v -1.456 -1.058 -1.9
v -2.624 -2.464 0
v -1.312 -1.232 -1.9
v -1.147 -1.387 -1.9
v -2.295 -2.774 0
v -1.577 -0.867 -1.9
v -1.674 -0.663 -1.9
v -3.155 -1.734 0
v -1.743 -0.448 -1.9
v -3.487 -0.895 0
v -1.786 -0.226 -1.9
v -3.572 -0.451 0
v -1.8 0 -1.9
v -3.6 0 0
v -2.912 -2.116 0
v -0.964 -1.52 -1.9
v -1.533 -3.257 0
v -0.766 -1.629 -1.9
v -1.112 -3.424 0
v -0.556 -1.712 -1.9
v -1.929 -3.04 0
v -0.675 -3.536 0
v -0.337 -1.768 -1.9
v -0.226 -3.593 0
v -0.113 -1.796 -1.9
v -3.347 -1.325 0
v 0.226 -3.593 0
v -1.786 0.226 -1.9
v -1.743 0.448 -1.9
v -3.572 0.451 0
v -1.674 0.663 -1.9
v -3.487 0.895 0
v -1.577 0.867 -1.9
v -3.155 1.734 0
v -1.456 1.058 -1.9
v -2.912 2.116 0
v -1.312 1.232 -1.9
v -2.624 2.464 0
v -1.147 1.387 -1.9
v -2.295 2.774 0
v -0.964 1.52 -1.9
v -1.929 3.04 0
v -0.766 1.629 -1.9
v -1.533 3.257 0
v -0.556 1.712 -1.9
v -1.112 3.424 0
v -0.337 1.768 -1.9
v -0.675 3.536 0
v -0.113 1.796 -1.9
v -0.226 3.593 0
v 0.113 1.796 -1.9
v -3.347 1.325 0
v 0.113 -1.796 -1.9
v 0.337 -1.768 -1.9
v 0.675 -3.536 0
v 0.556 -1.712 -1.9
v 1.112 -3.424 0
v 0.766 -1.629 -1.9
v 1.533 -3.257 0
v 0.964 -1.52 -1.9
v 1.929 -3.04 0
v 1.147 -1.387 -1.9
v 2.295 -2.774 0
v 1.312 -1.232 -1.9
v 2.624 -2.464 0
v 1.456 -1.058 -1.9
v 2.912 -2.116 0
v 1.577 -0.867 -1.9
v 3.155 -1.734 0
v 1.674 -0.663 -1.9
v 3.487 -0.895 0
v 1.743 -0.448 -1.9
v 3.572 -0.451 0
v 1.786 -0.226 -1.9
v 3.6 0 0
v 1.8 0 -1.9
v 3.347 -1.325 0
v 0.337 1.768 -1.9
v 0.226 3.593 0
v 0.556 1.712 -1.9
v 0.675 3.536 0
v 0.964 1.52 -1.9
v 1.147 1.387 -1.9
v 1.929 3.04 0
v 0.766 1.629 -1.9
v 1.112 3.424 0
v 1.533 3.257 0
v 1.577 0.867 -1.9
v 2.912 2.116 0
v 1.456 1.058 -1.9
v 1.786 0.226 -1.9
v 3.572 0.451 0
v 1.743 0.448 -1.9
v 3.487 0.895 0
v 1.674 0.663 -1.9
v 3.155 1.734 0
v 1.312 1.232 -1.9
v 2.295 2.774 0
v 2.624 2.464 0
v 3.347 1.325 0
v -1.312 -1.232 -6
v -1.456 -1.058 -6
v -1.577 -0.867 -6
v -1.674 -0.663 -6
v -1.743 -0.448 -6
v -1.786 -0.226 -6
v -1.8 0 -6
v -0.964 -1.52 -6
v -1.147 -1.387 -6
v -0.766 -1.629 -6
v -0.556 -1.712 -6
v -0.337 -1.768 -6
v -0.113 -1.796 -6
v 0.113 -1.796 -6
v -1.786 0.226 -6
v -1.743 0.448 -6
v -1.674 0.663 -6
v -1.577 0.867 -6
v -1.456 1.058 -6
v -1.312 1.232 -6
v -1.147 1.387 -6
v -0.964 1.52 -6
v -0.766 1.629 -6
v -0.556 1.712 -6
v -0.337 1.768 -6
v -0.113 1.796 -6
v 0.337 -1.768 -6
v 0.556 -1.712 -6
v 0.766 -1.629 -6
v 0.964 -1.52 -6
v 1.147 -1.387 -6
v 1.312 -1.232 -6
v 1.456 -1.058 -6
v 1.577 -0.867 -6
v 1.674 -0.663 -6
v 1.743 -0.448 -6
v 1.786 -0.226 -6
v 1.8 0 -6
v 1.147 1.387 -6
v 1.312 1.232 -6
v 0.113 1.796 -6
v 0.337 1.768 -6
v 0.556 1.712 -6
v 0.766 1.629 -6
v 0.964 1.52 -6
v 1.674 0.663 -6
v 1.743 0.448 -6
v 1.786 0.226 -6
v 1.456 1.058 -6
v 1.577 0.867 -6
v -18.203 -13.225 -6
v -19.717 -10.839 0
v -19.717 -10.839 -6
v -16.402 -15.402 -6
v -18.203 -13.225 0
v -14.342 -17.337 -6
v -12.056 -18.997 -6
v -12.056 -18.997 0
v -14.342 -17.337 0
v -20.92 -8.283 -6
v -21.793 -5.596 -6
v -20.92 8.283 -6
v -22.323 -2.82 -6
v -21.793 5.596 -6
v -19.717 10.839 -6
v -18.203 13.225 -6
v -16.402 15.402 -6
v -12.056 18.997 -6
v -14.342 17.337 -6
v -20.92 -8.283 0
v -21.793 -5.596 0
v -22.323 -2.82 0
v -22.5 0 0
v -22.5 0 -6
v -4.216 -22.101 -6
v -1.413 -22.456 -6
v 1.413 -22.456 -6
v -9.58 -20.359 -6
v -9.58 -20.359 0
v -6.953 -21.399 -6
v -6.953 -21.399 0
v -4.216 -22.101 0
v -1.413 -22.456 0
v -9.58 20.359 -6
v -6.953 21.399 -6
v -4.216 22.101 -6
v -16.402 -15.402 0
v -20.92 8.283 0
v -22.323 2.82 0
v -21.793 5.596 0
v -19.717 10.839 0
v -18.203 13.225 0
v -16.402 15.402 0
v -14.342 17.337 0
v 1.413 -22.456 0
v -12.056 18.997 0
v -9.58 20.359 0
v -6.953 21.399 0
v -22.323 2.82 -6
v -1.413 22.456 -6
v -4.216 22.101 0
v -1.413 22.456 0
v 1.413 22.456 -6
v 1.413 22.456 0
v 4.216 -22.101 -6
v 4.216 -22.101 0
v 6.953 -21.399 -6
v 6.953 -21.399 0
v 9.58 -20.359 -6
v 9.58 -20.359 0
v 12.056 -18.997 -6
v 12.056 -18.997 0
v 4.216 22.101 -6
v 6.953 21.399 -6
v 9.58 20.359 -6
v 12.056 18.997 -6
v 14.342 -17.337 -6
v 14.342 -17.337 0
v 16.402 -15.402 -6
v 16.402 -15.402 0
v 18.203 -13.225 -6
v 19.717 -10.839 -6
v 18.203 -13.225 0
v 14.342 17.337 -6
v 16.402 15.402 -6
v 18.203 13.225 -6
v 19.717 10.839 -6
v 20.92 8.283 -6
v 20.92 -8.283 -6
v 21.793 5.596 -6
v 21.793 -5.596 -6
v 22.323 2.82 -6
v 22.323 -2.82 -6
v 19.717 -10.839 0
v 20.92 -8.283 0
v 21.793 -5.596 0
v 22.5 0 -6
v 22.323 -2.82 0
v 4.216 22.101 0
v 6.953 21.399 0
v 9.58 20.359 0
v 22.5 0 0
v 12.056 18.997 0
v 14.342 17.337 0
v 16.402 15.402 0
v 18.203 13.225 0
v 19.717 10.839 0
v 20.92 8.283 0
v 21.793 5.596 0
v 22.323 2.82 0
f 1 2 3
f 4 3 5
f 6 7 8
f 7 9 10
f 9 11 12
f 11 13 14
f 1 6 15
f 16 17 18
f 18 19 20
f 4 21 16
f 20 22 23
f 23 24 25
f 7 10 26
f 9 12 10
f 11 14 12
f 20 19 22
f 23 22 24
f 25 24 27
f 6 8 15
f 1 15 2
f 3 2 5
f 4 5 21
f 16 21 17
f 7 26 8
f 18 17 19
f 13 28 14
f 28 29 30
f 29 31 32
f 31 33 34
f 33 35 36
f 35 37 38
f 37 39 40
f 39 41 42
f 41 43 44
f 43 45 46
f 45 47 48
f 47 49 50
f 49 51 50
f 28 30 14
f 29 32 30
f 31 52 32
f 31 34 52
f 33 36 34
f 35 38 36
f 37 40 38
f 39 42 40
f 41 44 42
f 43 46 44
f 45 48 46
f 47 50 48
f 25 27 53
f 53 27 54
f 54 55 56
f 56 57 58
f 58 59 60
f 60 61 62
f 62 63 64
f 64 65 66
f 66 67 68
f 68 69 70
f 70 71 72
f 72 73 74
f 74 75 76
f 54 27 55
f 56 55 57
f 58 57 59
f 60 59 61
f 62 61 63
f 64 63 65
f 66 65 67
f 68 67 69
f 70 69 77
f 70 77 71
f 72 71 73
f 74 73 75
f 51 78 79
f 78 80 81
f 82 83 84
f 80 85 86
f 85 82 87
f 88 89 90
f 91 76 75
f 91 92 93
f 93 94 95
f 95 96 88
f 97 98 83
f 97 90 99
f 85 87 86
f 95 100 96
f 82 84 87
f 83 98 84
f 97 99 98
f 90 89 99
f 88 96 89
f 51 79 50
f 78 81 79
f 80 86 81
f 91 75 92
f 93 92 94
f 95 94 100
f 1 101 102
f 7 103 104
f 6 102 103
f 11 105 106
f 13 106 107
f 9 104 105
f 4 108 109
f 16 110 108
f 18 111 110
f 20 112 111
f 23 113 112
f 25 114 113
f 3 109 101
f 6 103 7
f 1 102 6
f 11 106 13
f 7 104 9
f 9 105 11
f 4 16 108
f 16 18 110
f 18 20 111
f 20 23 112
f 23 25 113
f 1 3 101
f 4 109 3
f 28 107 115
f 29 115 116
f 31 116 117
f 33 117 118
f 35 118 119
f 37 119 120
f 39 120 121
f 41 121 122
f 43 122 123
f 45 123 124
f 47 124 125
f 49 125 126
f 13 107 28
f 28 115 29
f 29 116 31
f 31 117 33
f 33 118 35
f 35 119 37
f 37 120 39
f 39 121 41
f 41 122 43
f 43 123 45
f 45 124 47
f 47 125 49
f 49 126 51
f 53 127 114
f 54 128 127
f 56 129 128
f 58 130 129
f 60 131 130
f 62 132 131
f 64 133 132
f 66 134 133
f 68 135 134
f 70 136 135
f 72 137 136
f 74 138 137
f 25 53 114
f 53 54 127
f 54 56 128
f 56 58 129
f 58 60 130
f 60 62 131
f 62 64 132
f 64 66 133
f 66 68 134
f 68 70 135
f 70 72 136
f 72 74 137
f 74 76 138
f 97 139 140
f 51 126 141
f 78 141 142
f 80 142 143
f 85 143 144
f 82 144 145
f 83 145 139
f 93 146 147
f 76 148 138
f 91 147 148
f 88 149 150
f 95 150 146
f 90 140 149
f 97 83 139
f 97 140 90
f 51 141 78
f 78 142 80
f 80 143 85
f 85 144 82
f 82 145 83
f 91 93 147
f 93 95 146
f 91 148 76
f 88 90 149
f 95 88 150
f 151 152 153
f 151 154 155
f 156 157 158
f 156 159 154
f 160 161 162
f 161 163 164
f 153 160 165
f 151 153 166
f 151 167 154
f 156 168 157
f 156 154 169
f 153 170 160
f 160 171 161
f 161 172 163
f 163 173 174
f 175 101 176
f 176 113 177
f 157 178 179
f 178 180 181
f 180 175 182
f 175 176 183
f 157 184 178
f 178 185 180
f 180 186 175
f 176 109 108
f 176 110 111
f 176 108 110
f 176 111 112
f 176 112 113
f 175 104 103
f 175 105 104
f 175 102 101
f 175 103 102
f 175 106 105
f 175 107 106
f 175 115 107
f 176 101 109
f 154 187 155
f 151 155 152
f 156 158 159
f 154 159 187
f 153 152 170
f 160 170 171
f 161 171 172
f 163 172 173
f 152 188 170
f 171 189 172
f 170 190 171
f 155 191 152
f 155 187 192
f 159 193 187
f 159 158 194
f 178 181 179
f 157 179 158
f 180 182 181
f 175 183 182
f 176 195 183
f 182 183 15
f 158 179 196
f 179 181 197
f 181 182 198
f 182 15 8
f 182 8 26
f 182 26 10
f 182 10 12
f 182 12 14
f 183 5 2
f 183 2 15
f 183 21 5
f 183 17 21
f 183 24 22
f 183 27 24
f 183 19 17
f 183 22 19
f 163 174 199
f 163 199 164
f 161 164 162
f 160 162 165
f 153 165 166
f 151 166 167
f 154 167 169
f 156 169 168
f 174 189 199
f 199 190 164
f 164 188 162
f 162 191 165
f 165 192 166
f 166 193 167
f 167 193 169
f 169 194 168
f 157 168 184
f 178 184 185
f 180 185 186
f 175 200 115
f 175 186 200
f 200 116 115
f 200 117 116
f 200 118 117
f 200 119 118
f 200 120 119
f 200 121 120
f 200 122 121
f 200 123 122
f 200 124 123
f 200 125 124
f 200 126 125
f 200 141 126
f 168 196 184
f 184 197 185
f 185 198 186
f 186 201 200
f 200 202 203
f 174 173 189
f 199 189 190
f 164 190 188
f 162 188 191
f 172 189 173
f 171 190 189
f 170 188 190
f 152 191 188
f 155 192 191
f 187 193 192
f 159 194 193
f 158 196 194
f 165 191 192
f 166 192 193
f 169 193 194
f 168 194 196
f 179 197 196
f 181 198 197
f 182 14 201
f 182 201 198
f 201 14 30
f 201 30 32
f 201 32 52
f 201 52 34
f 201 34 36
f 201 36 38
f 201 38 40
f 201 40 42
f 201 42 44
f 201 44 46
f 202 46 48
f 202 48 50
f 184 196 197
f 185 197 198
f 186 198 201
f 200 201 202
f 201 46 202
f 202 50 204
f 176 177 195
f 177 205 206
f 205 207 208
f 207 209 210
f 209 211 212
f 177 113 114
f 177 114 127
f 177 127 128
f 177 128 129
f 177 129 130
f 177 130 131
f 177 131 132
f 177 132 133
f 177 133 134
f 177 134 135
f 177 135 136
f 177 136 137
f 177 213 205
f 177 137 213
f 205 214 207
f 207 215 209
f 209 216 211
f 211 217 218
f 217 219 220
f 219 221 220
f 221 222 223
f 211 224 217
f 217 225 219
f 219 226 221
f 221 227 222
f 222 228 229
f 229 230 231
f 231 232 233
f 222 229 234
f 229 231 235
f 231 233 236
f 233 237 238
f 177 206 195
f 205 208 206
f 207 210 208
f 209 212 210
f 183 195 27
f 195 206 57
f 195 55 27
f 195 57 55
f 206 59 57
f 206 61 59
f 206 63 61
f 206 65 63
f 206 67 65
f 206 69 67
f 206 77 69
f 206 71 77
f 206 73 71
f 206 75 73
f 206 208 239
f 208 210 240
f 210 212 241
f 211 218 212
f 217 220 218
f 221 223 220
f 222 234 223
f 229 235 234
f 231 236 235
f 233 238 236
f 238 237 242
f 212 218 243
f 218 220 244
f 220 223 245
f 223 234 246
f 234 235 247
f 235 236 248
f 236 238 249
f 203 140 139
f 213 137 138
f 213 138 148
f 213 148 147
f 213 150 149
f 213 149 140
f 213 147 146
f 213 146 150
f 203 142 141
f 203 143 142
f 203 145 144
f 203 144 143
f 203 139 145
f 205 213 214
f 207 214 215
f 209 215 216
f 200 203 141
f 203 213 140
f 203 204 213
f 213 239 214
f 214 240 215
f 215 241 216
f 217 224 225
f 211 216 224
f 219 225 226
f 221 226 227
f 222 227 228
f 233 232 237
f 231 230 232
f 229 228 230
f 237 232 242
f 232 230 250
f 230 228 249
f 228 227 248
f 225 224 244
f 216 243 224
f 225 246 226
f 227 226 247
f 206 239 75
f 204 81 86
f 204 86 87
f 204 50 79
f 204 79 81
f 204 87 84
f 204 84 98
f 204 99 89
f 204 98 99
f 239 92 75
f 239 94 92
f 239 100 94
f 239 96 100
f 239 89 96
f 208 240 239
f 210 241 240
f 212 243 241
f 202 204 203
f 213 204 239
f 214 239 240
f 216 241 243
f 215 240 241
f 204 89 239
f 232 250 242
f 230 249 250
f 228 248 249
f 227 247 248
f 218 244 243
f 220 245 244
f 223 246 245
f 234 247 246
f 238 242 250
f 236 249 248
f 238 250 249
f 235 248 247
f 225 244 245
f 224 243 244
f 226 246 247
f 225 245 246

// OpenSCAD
$fn = 50;

difference() {
	union() {
		translate(v = [0, 0, -6.0]) {
			cylinder(h = 6, r = 22.5);
		}
	}
	union() {
		translate(v = [0, 0, 0]) {
			rotate(a = [0, 0, 0]) {
				difference() {
					union() {
						translate(v = [0, 0, -9.0]) {
							cylinder(h = 9, r = 1.5);
						}
						translate(v = [0, 0, -1.9]) {
							cylinder(h = 1.9, r1 = 1.8, r2 = 3.6);
						}
						translate(v = [0, 0, -9.0]) {
							cylinder(h = 9, r = 1.8);
						}
						translate(v = [0, 0, -9.0]) {
							cylinder(h = 9, r = 1.5);
						}
					}
					union();
				}
			}
		}
	}
}
